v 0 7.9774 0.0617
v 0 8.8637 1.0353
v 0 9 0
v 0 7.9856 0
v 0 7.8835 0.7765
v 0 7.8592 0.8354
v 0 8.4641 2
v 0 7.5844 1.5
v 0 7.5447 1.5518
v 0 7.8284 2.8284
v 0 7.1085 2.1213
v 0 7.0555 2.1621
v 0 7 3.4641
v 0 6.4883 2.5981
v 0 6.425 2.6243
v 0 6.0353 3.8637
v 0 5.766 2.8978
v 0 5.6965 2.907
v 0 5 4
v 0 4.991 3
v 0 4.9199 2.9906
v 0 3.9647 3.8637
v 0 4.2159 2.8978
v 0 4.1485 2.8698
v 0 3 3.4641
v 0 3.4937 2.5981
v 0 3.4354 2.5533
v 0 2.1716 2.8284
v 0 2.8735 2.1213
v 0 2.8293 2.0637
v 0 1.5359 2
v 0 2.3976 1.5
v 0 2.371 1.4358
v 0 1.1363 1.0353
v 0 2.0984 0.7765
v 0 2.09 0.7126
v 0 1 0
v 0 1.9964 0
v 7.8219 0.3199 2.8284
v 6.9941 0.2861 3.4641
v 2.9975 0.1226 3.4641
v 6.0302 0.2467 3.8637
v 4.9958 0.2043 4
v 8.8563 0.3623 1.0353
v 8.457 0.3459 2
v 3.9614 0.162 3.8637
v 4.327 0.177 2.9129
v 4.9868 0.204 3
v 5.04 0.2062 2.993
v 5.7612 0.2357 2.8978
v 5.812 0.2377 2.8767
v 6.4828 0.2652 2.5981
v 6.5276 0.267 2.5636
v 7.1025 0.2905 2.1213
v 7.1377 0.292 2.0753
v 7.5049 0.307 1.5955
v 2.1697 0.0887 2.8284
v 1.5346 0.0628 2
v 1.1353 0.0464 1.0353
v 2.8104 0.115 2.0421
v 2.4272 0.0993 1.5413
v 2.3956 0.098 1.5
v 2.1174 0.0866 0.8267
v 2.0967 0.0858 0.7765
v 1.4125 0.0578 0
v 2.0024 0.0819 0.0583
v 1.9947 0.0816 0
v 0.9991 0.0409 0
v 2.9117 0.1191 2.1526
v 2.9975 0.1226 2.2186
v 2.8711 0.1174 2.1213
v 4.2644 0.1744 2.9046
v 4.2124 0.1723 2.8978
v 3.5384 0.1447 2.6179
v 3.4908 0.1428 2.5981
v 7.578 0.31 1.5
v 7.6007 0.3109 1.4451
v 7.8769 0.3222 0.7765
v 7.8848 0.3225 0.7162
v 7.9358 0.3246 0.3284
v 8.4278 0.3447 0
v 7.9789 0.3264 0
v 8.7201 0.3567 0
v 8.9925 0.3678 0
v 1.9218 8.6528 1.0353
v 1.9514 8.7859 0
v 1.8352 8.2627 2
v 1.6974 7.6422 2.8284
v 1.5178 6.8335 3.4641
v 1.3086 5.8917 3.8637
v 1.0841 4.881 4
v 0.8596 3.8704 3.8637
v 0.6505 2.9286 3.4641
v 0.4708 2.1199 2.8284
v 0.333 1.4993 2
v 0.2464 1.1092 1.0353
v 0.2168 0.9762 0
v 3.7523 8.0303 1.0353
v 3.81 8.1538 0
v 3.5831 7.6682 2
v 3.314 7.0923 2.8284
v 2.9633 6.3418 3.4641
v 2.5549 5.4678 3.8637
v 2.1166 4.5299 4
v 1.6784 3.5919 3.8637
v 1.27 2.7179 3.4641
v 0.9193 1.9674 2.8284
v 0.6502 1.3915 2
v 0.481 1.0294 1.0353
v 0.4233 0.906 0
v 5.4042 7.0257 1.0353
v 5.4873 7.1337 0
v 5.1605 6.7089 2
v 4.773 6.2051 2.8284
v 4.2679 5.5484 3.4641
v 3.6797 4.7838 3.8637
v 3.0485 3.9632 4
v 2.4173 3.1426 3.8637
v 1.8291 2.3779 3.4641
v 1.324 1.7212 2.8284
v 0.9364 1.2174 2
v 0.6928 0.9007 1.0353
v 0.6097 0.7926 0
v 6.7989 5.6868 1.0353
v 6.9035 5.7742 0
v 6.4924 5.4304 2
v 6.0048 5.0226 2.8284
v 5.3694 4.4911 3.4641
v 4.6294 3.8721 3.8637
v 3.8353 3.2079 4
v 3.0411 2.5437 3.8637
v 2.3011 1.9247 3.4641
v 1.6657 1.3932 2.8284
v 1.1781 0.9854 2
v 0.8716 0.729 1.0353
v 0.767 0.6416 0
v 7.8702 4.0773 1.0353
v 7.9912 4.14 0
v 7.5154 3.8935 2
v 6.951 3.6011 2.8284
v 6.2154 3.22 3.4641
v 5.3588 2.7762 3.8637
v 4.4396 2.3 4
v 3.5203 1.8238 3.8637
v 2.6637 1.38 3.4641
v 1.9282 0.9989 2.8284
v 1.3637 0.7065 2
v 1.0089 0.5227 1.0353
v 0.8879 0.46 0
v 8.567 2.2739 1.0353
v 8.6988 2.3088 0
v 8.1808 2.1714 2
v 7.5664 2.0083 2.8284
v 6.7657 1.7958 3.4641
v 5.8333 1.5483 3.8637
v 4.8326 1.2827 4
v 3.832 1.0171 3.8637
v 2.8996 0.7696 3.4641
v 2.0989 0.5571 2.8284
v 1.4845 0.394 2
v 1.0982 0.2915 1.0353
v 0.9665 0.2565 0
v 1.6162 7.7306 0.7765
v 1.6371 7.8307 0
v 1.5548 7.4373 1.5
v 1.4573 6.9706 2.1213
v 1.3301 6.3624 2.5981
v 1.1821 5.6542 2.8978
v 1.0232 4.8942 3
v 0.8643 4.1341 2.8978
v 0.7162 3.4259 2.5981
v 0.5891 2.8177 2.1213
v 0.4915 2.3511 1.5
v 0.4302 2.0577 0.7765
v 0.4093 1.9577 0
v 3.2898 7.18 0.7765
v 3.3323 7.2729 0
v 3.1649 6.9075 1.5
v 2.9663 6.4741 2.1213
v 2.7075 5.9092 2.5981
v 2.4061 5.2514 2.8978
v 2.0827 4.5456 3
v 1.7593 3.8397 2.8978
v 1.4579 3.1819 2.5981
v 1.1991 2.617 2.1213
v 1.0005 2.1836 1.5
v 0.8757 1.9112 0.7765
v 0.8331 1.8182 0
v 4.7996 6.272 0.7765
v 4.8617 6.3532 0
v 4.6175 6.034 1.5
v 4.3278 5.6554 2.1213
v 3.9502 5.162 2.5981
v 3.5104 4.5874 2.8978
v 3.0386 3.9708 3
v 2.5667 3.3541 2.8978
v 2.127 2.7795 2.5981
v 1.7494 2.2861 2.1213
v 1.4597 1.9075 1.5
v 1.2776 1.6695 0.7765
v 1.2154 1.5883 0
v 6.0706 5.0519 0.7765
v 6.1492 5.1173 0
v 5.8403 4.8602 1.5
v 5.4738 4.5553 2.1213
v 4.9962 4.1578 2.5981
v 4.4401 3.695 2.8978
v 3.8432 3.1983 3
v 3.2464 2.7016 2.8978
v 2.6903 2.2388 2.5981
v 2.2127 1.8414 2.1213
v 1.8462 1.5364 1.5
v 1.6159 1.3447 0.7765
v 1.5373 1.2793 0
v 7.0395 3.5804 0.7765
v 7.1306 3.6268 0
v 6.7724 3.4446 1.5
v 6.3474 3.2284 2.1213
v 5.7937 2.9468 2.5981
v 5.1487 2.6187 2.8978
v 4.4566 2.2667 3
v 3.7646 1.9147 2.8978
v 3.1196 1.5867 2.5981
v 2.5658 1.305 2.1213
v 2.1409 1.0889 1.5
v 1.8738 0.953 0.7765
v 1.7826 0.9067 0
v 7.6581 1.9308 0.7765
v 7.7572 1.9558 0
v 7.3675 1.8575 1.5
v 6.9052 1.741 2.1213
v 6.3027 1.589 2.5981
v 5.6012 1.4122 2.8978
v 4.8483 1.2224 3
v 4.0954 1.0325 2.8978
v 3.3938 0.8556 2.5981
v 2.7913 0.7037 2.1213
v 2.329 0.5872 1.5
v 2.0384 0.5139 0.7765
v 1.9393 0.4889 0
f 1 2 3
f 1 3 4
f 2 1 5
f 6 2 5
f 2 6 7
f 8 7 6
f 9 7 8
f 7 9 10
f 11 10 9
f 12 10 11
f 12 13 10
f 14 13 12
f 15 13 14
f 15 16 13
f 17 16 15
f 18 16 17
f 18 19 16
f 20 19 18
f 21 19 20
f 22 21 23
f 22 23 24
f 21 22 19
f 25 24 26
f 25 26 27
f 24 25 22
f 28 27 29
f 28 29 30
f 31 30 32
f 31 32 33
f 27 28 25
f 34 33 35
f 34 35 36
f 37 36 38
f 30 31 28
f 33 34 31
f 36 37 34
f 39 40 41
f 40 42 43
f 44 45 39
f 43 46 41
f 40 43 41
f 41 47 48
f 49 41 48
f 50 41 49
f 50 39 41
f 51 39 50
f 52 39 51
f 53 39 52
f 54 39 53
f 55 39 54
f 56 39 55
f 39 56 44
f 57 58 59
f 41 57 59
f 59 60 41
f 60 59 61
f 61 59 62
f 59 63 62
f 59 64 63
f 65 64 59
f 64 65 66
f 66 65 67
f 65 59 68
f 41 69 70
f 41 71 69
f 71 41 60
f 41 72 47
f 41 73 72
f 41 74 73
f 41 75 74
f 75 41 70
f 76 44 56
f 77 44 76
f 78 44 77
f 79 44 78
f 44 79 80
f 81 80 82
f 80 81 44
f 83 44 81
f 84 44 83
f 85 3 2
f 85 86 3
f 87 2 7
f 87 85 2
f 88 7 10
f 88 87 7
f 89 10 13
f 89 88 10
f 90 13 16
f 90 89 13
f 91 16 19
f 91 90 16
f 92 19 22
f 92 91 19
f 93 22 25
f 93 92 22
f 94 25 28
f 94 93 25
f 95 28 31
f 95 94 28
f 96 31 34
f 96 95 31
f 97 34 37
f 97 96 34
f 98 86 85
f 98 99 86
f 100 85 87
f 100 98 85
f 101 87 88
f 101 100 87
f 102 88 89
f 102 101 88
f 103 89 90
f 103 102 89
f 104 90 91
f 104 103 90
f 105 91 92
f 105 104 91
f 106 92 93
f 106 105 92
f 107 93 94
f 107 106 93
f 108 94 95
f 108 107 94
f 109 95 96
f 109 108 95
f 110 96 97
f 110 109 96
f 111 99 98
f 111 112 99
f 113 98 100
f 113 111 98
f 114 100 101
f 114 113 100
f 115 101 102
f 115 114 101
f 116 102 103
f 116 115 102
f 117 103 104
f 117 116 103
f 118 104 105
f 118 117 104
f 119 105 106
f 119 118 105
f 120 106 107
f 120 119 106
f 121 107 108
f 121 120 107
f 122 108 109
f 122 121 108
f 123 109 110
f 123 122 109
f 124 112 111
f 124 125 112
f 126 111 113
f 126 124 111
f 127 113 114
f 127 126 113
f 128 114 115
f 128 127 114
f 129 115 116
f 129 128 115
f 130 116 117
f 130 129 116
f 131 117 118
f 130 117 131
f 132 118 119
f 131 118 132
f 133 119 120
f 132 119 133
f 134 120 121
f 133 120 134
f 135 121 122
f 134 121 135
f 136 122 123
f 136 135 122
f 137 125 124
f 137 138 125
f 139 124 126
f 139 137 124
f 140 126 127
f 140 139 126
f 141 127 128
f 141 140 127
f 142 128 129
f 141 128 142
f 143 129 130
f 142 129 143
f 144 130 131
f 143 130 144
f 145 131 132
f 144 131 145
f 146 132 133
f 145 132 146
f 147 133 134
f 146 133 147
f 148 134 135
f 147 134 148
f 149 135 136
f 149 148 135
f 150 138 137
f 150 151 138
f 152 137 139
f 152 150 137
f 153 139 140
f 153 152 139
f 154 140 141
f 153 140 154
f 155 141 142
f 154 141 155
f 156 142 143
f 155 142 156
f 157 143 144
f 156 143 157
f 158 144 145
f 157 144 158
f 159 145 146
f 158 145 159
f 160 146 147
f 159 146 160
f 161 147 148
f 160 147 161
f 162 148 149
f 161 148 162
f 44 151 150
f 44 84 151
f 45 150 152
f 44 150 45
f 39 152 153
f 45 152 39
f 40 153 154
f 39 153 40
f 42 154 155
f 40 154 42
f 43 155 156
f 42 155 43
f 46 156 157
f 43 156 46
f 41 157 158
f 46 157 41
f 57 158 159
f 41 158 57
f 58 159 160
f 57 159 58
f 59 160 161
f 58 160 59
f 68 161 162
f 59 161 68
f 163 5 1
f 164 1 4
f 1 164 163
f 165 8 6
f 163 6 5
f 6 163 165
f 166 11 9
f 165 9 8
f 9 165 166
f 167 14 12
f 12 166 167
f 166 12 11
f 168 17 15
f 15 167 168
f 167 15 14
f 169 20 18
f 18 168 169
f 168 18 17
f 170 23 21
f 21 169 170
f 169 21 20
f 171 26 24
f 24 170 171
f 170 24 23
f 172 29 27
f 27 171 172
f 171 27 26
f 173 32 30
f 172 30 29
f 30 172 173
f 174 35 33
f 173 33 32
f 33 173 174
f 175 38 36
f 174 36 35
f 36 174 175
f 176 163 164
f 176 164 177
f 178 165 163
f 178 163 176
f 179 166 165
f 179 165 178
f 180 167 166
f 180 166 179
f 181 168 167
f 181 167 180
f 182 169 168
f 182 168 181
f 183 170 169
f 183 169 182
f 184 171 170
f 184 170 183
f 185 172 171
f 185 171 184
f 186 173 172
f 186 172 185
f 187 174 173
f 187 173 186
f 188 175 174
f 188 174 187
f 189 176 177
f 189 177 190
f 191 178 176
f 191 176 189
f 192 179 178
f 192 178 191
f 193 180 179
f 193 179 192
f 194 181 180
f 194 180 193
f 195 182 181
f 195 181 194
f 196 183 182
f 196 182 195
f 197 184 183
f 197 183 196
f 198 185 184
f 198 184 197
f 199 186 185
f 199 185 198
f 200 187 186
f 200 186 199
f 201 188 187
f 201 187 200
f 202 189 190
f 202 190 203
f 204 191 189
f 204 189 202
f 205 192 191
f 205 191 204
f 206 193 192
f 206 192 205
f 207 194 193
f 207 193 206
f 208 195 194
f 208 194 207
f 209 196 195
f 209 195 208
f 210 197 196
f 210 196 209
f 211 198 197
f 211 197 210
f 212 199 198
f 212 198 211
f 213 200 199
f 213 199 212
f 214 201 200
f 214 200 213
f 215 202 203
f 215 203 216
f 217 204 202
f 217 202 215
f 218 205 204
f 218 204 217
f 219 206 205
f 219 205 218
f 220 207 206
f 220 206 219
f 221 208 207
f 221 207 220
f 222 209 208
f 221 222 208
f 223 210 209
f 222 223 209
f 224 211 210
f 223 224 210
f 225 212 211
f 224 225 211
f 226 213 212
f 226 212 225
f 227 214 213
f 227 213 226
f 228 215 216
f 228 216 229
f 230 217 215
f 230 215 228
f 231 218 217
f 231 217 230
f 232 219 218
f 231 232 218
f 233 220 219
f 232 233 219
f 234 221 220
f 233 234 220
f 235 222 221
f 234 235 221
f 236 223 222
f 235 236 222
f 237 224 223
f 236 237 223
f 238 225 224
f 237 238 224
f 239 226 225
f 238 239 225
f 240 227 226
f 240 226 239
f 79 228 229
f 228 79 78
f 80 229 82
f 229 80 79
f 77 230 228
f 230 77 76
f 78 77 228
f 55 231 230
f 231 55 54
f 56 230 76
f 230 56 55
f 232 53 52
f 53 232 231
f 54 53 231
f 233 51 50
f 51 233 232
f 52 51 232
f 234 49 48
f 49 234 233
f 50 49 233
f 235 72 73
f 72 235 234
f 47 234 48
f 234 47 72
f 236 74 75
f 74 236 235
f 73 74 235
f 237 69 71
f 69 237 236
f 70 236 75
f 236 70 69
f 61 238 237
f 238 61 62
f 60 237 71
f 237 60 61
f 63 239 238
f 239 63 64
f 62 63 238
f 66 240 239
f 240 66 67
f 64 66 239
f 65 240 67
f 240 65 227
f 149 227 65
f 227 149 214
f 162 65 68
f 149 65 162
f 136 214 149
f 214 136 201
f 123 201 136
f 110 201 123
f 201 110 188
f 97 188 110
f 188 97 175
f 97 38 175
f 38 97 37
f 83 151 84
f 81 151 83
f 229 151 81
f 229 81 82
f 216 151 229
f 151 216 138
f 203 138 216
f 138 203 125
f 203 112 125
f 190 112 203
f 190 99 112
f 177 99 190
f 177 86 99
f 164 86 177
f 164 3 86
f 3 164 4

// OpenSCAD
// file: ../build_environments.scad
// build_environments.scad: modules to build level sections
//

module pool(diameter=10.0, wall_height=2.0, step_width=3.0, connections=[])
{
    difference() {
        union() {
        difference() {
            cylinder(h=0.5,r1=diameter+step_width,r2=diameter+step_width,$fn=48);
            translate([0,0,-0.1])
                cylinder(h=0.7,r1=diameter,r2=diameter,$fn=48);
        }
        difference() {
            cylinder(h=wall_height,r1=diameter+step_width+1.0,r2=diameter+step_width+1.0,$fn=48);
            translate([0,0,-0.1])
                cylinder(h=wall_height+0.2,r1=diameter+step_width,r2=diameter+step_width,$fn=48);
        }
        }
    
        for (c = connections)
        {
            rotate([0,90,0]) {
                angle = atan2(c[1],c[0]);
                rotate([-angle,0,0]) {
                    cylinder(h=diameter+5.0,r1=c[2],r2=c[2],$fn=48);
                }
            }
        }
    }
}

module straight(length=10.0, width=2.0, dy1=0.0, dy2=0.0, dz=0.0)
{
    dims = [0, 0, 0, 0, 0, (dz/length)];
    matrix = [
        [ 1, dims[0], dims[1], 0 ],
        [ dims[2], 1, dims[4], 0 ],
        [ dims[5], dims[3], 1, 0 ],
        [ 0, 0, 0, 1 ]
    ];
    multmatrix(matrix)
    difference() {
        translate([dy1,0,0])
        union() {
            rotate([0,90,0]) {
                difference() {
                    cylinder(h=(length-dy1-dy2),r1=width+1.0,r2=width+1.0,$fn=24);
                    translate([0,0,-0.1])
                        cylinder(h=(length-dy1-dy2+0.2),r1=width,r2=width,$fn=24);
                }
                difference() {
                    cylinder(h=1.0,r1=width+2.0,r2=width+2.0,$fn=24);
                    translate([0,0,-0.1])
                        cylinder(h=1.2,r1=width,r2=width,$fn=24);
                }
                translate([0,0,(length-dy1-dy2)-1.0]) {
                    difference() {
                        cylinder(h=1.0,r1=width+2.0,r2=width+2.0,$fn=24);
                        translate([0,0,-0.1])
                            cylinder(h=1.2,r1=width,r2=width,$fn=24);
                    }
                }
            }
        }
        translate([0,0,-(2*width+4.0)/2])
            cube([3*length,3*length,2*width+4.0],center=true);
    }
}

module curve(p0=[0,0], center=[0,0], dir=1, angle=0.0, width=2.0)
{
    radius = sqrt((p0[0]-center[0])*(p0[0]-center[0]) + (p0[1]-center[1])*(p0[1]-center[1]));
    if (dir == 0) {
        difference() {
            rotate([0,0,-90])
            difference() {
                rotate_extrude(angle = angle, convexity = 10, $fn=32)
                    translate([radius, 0, 0])
                        circle(r = width+1.0,$fn=24);
                rotate([0,0,-1.0])
                    rotate_extrude(angle = angle+2.0, convexity = 10, $fn=32)
                        translate([radius, 0, 0])
                            circle(r = width,$fn=24);
            }
            translate([0,0,-(2*width+4.0)/2])
                cube([5*radius,5*radius,2*width+4.0],center=true);
        }
    }
    else {
        difference() {
            rotate([0,0,90])
            difference() {
                rotate_extrude(angle = -angle, convexity = 10, $fn=32)
                    translate([radius, 0, 0])
                        circle(r = width+1.0,$fn=24);
                rotate([0,0,1.0])
                    rotate_extrude(angle = -angle-2.0, convexity = 10, $fn=32)
                        translate([radius, 0, 0])
                            circle(r = width,$fn=24);
            }
            translate([0,0,-(2*width+4.0)/2])
                cube([5*radius,5*radius,2*width+4.0],center=true);
        }
    }

}

// test pool
//pool(diameter=12.0000, wall_height=3.0000, step_width=3.0000, connections=[[0.0000,-26.0000,2.0000], [23.6074,0.0000,2.0000]]);

// test straight, slope
//straight(length=26.0000, width=2.0000, dy1=11.8322, dy2=6.7082, dz=0.0000);
//straight(length=29.1549, width=12.0000, dy1=0.0000, dy2=0.0000, dz=-15.0000);

// test curve
//curve(p0=[23.6074, 0.0000], center=[23.6074, 5.0000], dir=0, angle=60.1011, width=2.0000);
//curve(p0=[33.6426, 12.4219], center=[37.9771, 9.9295], dir=1, angle=120.4627, width=2.0000);
// main file
use <../build_environments.scad>;
curve(p0=[-108.2992, 151.5665], center=[-108.3685, 146.5670], dir=1, angle=87.6577, width=3.0000);
